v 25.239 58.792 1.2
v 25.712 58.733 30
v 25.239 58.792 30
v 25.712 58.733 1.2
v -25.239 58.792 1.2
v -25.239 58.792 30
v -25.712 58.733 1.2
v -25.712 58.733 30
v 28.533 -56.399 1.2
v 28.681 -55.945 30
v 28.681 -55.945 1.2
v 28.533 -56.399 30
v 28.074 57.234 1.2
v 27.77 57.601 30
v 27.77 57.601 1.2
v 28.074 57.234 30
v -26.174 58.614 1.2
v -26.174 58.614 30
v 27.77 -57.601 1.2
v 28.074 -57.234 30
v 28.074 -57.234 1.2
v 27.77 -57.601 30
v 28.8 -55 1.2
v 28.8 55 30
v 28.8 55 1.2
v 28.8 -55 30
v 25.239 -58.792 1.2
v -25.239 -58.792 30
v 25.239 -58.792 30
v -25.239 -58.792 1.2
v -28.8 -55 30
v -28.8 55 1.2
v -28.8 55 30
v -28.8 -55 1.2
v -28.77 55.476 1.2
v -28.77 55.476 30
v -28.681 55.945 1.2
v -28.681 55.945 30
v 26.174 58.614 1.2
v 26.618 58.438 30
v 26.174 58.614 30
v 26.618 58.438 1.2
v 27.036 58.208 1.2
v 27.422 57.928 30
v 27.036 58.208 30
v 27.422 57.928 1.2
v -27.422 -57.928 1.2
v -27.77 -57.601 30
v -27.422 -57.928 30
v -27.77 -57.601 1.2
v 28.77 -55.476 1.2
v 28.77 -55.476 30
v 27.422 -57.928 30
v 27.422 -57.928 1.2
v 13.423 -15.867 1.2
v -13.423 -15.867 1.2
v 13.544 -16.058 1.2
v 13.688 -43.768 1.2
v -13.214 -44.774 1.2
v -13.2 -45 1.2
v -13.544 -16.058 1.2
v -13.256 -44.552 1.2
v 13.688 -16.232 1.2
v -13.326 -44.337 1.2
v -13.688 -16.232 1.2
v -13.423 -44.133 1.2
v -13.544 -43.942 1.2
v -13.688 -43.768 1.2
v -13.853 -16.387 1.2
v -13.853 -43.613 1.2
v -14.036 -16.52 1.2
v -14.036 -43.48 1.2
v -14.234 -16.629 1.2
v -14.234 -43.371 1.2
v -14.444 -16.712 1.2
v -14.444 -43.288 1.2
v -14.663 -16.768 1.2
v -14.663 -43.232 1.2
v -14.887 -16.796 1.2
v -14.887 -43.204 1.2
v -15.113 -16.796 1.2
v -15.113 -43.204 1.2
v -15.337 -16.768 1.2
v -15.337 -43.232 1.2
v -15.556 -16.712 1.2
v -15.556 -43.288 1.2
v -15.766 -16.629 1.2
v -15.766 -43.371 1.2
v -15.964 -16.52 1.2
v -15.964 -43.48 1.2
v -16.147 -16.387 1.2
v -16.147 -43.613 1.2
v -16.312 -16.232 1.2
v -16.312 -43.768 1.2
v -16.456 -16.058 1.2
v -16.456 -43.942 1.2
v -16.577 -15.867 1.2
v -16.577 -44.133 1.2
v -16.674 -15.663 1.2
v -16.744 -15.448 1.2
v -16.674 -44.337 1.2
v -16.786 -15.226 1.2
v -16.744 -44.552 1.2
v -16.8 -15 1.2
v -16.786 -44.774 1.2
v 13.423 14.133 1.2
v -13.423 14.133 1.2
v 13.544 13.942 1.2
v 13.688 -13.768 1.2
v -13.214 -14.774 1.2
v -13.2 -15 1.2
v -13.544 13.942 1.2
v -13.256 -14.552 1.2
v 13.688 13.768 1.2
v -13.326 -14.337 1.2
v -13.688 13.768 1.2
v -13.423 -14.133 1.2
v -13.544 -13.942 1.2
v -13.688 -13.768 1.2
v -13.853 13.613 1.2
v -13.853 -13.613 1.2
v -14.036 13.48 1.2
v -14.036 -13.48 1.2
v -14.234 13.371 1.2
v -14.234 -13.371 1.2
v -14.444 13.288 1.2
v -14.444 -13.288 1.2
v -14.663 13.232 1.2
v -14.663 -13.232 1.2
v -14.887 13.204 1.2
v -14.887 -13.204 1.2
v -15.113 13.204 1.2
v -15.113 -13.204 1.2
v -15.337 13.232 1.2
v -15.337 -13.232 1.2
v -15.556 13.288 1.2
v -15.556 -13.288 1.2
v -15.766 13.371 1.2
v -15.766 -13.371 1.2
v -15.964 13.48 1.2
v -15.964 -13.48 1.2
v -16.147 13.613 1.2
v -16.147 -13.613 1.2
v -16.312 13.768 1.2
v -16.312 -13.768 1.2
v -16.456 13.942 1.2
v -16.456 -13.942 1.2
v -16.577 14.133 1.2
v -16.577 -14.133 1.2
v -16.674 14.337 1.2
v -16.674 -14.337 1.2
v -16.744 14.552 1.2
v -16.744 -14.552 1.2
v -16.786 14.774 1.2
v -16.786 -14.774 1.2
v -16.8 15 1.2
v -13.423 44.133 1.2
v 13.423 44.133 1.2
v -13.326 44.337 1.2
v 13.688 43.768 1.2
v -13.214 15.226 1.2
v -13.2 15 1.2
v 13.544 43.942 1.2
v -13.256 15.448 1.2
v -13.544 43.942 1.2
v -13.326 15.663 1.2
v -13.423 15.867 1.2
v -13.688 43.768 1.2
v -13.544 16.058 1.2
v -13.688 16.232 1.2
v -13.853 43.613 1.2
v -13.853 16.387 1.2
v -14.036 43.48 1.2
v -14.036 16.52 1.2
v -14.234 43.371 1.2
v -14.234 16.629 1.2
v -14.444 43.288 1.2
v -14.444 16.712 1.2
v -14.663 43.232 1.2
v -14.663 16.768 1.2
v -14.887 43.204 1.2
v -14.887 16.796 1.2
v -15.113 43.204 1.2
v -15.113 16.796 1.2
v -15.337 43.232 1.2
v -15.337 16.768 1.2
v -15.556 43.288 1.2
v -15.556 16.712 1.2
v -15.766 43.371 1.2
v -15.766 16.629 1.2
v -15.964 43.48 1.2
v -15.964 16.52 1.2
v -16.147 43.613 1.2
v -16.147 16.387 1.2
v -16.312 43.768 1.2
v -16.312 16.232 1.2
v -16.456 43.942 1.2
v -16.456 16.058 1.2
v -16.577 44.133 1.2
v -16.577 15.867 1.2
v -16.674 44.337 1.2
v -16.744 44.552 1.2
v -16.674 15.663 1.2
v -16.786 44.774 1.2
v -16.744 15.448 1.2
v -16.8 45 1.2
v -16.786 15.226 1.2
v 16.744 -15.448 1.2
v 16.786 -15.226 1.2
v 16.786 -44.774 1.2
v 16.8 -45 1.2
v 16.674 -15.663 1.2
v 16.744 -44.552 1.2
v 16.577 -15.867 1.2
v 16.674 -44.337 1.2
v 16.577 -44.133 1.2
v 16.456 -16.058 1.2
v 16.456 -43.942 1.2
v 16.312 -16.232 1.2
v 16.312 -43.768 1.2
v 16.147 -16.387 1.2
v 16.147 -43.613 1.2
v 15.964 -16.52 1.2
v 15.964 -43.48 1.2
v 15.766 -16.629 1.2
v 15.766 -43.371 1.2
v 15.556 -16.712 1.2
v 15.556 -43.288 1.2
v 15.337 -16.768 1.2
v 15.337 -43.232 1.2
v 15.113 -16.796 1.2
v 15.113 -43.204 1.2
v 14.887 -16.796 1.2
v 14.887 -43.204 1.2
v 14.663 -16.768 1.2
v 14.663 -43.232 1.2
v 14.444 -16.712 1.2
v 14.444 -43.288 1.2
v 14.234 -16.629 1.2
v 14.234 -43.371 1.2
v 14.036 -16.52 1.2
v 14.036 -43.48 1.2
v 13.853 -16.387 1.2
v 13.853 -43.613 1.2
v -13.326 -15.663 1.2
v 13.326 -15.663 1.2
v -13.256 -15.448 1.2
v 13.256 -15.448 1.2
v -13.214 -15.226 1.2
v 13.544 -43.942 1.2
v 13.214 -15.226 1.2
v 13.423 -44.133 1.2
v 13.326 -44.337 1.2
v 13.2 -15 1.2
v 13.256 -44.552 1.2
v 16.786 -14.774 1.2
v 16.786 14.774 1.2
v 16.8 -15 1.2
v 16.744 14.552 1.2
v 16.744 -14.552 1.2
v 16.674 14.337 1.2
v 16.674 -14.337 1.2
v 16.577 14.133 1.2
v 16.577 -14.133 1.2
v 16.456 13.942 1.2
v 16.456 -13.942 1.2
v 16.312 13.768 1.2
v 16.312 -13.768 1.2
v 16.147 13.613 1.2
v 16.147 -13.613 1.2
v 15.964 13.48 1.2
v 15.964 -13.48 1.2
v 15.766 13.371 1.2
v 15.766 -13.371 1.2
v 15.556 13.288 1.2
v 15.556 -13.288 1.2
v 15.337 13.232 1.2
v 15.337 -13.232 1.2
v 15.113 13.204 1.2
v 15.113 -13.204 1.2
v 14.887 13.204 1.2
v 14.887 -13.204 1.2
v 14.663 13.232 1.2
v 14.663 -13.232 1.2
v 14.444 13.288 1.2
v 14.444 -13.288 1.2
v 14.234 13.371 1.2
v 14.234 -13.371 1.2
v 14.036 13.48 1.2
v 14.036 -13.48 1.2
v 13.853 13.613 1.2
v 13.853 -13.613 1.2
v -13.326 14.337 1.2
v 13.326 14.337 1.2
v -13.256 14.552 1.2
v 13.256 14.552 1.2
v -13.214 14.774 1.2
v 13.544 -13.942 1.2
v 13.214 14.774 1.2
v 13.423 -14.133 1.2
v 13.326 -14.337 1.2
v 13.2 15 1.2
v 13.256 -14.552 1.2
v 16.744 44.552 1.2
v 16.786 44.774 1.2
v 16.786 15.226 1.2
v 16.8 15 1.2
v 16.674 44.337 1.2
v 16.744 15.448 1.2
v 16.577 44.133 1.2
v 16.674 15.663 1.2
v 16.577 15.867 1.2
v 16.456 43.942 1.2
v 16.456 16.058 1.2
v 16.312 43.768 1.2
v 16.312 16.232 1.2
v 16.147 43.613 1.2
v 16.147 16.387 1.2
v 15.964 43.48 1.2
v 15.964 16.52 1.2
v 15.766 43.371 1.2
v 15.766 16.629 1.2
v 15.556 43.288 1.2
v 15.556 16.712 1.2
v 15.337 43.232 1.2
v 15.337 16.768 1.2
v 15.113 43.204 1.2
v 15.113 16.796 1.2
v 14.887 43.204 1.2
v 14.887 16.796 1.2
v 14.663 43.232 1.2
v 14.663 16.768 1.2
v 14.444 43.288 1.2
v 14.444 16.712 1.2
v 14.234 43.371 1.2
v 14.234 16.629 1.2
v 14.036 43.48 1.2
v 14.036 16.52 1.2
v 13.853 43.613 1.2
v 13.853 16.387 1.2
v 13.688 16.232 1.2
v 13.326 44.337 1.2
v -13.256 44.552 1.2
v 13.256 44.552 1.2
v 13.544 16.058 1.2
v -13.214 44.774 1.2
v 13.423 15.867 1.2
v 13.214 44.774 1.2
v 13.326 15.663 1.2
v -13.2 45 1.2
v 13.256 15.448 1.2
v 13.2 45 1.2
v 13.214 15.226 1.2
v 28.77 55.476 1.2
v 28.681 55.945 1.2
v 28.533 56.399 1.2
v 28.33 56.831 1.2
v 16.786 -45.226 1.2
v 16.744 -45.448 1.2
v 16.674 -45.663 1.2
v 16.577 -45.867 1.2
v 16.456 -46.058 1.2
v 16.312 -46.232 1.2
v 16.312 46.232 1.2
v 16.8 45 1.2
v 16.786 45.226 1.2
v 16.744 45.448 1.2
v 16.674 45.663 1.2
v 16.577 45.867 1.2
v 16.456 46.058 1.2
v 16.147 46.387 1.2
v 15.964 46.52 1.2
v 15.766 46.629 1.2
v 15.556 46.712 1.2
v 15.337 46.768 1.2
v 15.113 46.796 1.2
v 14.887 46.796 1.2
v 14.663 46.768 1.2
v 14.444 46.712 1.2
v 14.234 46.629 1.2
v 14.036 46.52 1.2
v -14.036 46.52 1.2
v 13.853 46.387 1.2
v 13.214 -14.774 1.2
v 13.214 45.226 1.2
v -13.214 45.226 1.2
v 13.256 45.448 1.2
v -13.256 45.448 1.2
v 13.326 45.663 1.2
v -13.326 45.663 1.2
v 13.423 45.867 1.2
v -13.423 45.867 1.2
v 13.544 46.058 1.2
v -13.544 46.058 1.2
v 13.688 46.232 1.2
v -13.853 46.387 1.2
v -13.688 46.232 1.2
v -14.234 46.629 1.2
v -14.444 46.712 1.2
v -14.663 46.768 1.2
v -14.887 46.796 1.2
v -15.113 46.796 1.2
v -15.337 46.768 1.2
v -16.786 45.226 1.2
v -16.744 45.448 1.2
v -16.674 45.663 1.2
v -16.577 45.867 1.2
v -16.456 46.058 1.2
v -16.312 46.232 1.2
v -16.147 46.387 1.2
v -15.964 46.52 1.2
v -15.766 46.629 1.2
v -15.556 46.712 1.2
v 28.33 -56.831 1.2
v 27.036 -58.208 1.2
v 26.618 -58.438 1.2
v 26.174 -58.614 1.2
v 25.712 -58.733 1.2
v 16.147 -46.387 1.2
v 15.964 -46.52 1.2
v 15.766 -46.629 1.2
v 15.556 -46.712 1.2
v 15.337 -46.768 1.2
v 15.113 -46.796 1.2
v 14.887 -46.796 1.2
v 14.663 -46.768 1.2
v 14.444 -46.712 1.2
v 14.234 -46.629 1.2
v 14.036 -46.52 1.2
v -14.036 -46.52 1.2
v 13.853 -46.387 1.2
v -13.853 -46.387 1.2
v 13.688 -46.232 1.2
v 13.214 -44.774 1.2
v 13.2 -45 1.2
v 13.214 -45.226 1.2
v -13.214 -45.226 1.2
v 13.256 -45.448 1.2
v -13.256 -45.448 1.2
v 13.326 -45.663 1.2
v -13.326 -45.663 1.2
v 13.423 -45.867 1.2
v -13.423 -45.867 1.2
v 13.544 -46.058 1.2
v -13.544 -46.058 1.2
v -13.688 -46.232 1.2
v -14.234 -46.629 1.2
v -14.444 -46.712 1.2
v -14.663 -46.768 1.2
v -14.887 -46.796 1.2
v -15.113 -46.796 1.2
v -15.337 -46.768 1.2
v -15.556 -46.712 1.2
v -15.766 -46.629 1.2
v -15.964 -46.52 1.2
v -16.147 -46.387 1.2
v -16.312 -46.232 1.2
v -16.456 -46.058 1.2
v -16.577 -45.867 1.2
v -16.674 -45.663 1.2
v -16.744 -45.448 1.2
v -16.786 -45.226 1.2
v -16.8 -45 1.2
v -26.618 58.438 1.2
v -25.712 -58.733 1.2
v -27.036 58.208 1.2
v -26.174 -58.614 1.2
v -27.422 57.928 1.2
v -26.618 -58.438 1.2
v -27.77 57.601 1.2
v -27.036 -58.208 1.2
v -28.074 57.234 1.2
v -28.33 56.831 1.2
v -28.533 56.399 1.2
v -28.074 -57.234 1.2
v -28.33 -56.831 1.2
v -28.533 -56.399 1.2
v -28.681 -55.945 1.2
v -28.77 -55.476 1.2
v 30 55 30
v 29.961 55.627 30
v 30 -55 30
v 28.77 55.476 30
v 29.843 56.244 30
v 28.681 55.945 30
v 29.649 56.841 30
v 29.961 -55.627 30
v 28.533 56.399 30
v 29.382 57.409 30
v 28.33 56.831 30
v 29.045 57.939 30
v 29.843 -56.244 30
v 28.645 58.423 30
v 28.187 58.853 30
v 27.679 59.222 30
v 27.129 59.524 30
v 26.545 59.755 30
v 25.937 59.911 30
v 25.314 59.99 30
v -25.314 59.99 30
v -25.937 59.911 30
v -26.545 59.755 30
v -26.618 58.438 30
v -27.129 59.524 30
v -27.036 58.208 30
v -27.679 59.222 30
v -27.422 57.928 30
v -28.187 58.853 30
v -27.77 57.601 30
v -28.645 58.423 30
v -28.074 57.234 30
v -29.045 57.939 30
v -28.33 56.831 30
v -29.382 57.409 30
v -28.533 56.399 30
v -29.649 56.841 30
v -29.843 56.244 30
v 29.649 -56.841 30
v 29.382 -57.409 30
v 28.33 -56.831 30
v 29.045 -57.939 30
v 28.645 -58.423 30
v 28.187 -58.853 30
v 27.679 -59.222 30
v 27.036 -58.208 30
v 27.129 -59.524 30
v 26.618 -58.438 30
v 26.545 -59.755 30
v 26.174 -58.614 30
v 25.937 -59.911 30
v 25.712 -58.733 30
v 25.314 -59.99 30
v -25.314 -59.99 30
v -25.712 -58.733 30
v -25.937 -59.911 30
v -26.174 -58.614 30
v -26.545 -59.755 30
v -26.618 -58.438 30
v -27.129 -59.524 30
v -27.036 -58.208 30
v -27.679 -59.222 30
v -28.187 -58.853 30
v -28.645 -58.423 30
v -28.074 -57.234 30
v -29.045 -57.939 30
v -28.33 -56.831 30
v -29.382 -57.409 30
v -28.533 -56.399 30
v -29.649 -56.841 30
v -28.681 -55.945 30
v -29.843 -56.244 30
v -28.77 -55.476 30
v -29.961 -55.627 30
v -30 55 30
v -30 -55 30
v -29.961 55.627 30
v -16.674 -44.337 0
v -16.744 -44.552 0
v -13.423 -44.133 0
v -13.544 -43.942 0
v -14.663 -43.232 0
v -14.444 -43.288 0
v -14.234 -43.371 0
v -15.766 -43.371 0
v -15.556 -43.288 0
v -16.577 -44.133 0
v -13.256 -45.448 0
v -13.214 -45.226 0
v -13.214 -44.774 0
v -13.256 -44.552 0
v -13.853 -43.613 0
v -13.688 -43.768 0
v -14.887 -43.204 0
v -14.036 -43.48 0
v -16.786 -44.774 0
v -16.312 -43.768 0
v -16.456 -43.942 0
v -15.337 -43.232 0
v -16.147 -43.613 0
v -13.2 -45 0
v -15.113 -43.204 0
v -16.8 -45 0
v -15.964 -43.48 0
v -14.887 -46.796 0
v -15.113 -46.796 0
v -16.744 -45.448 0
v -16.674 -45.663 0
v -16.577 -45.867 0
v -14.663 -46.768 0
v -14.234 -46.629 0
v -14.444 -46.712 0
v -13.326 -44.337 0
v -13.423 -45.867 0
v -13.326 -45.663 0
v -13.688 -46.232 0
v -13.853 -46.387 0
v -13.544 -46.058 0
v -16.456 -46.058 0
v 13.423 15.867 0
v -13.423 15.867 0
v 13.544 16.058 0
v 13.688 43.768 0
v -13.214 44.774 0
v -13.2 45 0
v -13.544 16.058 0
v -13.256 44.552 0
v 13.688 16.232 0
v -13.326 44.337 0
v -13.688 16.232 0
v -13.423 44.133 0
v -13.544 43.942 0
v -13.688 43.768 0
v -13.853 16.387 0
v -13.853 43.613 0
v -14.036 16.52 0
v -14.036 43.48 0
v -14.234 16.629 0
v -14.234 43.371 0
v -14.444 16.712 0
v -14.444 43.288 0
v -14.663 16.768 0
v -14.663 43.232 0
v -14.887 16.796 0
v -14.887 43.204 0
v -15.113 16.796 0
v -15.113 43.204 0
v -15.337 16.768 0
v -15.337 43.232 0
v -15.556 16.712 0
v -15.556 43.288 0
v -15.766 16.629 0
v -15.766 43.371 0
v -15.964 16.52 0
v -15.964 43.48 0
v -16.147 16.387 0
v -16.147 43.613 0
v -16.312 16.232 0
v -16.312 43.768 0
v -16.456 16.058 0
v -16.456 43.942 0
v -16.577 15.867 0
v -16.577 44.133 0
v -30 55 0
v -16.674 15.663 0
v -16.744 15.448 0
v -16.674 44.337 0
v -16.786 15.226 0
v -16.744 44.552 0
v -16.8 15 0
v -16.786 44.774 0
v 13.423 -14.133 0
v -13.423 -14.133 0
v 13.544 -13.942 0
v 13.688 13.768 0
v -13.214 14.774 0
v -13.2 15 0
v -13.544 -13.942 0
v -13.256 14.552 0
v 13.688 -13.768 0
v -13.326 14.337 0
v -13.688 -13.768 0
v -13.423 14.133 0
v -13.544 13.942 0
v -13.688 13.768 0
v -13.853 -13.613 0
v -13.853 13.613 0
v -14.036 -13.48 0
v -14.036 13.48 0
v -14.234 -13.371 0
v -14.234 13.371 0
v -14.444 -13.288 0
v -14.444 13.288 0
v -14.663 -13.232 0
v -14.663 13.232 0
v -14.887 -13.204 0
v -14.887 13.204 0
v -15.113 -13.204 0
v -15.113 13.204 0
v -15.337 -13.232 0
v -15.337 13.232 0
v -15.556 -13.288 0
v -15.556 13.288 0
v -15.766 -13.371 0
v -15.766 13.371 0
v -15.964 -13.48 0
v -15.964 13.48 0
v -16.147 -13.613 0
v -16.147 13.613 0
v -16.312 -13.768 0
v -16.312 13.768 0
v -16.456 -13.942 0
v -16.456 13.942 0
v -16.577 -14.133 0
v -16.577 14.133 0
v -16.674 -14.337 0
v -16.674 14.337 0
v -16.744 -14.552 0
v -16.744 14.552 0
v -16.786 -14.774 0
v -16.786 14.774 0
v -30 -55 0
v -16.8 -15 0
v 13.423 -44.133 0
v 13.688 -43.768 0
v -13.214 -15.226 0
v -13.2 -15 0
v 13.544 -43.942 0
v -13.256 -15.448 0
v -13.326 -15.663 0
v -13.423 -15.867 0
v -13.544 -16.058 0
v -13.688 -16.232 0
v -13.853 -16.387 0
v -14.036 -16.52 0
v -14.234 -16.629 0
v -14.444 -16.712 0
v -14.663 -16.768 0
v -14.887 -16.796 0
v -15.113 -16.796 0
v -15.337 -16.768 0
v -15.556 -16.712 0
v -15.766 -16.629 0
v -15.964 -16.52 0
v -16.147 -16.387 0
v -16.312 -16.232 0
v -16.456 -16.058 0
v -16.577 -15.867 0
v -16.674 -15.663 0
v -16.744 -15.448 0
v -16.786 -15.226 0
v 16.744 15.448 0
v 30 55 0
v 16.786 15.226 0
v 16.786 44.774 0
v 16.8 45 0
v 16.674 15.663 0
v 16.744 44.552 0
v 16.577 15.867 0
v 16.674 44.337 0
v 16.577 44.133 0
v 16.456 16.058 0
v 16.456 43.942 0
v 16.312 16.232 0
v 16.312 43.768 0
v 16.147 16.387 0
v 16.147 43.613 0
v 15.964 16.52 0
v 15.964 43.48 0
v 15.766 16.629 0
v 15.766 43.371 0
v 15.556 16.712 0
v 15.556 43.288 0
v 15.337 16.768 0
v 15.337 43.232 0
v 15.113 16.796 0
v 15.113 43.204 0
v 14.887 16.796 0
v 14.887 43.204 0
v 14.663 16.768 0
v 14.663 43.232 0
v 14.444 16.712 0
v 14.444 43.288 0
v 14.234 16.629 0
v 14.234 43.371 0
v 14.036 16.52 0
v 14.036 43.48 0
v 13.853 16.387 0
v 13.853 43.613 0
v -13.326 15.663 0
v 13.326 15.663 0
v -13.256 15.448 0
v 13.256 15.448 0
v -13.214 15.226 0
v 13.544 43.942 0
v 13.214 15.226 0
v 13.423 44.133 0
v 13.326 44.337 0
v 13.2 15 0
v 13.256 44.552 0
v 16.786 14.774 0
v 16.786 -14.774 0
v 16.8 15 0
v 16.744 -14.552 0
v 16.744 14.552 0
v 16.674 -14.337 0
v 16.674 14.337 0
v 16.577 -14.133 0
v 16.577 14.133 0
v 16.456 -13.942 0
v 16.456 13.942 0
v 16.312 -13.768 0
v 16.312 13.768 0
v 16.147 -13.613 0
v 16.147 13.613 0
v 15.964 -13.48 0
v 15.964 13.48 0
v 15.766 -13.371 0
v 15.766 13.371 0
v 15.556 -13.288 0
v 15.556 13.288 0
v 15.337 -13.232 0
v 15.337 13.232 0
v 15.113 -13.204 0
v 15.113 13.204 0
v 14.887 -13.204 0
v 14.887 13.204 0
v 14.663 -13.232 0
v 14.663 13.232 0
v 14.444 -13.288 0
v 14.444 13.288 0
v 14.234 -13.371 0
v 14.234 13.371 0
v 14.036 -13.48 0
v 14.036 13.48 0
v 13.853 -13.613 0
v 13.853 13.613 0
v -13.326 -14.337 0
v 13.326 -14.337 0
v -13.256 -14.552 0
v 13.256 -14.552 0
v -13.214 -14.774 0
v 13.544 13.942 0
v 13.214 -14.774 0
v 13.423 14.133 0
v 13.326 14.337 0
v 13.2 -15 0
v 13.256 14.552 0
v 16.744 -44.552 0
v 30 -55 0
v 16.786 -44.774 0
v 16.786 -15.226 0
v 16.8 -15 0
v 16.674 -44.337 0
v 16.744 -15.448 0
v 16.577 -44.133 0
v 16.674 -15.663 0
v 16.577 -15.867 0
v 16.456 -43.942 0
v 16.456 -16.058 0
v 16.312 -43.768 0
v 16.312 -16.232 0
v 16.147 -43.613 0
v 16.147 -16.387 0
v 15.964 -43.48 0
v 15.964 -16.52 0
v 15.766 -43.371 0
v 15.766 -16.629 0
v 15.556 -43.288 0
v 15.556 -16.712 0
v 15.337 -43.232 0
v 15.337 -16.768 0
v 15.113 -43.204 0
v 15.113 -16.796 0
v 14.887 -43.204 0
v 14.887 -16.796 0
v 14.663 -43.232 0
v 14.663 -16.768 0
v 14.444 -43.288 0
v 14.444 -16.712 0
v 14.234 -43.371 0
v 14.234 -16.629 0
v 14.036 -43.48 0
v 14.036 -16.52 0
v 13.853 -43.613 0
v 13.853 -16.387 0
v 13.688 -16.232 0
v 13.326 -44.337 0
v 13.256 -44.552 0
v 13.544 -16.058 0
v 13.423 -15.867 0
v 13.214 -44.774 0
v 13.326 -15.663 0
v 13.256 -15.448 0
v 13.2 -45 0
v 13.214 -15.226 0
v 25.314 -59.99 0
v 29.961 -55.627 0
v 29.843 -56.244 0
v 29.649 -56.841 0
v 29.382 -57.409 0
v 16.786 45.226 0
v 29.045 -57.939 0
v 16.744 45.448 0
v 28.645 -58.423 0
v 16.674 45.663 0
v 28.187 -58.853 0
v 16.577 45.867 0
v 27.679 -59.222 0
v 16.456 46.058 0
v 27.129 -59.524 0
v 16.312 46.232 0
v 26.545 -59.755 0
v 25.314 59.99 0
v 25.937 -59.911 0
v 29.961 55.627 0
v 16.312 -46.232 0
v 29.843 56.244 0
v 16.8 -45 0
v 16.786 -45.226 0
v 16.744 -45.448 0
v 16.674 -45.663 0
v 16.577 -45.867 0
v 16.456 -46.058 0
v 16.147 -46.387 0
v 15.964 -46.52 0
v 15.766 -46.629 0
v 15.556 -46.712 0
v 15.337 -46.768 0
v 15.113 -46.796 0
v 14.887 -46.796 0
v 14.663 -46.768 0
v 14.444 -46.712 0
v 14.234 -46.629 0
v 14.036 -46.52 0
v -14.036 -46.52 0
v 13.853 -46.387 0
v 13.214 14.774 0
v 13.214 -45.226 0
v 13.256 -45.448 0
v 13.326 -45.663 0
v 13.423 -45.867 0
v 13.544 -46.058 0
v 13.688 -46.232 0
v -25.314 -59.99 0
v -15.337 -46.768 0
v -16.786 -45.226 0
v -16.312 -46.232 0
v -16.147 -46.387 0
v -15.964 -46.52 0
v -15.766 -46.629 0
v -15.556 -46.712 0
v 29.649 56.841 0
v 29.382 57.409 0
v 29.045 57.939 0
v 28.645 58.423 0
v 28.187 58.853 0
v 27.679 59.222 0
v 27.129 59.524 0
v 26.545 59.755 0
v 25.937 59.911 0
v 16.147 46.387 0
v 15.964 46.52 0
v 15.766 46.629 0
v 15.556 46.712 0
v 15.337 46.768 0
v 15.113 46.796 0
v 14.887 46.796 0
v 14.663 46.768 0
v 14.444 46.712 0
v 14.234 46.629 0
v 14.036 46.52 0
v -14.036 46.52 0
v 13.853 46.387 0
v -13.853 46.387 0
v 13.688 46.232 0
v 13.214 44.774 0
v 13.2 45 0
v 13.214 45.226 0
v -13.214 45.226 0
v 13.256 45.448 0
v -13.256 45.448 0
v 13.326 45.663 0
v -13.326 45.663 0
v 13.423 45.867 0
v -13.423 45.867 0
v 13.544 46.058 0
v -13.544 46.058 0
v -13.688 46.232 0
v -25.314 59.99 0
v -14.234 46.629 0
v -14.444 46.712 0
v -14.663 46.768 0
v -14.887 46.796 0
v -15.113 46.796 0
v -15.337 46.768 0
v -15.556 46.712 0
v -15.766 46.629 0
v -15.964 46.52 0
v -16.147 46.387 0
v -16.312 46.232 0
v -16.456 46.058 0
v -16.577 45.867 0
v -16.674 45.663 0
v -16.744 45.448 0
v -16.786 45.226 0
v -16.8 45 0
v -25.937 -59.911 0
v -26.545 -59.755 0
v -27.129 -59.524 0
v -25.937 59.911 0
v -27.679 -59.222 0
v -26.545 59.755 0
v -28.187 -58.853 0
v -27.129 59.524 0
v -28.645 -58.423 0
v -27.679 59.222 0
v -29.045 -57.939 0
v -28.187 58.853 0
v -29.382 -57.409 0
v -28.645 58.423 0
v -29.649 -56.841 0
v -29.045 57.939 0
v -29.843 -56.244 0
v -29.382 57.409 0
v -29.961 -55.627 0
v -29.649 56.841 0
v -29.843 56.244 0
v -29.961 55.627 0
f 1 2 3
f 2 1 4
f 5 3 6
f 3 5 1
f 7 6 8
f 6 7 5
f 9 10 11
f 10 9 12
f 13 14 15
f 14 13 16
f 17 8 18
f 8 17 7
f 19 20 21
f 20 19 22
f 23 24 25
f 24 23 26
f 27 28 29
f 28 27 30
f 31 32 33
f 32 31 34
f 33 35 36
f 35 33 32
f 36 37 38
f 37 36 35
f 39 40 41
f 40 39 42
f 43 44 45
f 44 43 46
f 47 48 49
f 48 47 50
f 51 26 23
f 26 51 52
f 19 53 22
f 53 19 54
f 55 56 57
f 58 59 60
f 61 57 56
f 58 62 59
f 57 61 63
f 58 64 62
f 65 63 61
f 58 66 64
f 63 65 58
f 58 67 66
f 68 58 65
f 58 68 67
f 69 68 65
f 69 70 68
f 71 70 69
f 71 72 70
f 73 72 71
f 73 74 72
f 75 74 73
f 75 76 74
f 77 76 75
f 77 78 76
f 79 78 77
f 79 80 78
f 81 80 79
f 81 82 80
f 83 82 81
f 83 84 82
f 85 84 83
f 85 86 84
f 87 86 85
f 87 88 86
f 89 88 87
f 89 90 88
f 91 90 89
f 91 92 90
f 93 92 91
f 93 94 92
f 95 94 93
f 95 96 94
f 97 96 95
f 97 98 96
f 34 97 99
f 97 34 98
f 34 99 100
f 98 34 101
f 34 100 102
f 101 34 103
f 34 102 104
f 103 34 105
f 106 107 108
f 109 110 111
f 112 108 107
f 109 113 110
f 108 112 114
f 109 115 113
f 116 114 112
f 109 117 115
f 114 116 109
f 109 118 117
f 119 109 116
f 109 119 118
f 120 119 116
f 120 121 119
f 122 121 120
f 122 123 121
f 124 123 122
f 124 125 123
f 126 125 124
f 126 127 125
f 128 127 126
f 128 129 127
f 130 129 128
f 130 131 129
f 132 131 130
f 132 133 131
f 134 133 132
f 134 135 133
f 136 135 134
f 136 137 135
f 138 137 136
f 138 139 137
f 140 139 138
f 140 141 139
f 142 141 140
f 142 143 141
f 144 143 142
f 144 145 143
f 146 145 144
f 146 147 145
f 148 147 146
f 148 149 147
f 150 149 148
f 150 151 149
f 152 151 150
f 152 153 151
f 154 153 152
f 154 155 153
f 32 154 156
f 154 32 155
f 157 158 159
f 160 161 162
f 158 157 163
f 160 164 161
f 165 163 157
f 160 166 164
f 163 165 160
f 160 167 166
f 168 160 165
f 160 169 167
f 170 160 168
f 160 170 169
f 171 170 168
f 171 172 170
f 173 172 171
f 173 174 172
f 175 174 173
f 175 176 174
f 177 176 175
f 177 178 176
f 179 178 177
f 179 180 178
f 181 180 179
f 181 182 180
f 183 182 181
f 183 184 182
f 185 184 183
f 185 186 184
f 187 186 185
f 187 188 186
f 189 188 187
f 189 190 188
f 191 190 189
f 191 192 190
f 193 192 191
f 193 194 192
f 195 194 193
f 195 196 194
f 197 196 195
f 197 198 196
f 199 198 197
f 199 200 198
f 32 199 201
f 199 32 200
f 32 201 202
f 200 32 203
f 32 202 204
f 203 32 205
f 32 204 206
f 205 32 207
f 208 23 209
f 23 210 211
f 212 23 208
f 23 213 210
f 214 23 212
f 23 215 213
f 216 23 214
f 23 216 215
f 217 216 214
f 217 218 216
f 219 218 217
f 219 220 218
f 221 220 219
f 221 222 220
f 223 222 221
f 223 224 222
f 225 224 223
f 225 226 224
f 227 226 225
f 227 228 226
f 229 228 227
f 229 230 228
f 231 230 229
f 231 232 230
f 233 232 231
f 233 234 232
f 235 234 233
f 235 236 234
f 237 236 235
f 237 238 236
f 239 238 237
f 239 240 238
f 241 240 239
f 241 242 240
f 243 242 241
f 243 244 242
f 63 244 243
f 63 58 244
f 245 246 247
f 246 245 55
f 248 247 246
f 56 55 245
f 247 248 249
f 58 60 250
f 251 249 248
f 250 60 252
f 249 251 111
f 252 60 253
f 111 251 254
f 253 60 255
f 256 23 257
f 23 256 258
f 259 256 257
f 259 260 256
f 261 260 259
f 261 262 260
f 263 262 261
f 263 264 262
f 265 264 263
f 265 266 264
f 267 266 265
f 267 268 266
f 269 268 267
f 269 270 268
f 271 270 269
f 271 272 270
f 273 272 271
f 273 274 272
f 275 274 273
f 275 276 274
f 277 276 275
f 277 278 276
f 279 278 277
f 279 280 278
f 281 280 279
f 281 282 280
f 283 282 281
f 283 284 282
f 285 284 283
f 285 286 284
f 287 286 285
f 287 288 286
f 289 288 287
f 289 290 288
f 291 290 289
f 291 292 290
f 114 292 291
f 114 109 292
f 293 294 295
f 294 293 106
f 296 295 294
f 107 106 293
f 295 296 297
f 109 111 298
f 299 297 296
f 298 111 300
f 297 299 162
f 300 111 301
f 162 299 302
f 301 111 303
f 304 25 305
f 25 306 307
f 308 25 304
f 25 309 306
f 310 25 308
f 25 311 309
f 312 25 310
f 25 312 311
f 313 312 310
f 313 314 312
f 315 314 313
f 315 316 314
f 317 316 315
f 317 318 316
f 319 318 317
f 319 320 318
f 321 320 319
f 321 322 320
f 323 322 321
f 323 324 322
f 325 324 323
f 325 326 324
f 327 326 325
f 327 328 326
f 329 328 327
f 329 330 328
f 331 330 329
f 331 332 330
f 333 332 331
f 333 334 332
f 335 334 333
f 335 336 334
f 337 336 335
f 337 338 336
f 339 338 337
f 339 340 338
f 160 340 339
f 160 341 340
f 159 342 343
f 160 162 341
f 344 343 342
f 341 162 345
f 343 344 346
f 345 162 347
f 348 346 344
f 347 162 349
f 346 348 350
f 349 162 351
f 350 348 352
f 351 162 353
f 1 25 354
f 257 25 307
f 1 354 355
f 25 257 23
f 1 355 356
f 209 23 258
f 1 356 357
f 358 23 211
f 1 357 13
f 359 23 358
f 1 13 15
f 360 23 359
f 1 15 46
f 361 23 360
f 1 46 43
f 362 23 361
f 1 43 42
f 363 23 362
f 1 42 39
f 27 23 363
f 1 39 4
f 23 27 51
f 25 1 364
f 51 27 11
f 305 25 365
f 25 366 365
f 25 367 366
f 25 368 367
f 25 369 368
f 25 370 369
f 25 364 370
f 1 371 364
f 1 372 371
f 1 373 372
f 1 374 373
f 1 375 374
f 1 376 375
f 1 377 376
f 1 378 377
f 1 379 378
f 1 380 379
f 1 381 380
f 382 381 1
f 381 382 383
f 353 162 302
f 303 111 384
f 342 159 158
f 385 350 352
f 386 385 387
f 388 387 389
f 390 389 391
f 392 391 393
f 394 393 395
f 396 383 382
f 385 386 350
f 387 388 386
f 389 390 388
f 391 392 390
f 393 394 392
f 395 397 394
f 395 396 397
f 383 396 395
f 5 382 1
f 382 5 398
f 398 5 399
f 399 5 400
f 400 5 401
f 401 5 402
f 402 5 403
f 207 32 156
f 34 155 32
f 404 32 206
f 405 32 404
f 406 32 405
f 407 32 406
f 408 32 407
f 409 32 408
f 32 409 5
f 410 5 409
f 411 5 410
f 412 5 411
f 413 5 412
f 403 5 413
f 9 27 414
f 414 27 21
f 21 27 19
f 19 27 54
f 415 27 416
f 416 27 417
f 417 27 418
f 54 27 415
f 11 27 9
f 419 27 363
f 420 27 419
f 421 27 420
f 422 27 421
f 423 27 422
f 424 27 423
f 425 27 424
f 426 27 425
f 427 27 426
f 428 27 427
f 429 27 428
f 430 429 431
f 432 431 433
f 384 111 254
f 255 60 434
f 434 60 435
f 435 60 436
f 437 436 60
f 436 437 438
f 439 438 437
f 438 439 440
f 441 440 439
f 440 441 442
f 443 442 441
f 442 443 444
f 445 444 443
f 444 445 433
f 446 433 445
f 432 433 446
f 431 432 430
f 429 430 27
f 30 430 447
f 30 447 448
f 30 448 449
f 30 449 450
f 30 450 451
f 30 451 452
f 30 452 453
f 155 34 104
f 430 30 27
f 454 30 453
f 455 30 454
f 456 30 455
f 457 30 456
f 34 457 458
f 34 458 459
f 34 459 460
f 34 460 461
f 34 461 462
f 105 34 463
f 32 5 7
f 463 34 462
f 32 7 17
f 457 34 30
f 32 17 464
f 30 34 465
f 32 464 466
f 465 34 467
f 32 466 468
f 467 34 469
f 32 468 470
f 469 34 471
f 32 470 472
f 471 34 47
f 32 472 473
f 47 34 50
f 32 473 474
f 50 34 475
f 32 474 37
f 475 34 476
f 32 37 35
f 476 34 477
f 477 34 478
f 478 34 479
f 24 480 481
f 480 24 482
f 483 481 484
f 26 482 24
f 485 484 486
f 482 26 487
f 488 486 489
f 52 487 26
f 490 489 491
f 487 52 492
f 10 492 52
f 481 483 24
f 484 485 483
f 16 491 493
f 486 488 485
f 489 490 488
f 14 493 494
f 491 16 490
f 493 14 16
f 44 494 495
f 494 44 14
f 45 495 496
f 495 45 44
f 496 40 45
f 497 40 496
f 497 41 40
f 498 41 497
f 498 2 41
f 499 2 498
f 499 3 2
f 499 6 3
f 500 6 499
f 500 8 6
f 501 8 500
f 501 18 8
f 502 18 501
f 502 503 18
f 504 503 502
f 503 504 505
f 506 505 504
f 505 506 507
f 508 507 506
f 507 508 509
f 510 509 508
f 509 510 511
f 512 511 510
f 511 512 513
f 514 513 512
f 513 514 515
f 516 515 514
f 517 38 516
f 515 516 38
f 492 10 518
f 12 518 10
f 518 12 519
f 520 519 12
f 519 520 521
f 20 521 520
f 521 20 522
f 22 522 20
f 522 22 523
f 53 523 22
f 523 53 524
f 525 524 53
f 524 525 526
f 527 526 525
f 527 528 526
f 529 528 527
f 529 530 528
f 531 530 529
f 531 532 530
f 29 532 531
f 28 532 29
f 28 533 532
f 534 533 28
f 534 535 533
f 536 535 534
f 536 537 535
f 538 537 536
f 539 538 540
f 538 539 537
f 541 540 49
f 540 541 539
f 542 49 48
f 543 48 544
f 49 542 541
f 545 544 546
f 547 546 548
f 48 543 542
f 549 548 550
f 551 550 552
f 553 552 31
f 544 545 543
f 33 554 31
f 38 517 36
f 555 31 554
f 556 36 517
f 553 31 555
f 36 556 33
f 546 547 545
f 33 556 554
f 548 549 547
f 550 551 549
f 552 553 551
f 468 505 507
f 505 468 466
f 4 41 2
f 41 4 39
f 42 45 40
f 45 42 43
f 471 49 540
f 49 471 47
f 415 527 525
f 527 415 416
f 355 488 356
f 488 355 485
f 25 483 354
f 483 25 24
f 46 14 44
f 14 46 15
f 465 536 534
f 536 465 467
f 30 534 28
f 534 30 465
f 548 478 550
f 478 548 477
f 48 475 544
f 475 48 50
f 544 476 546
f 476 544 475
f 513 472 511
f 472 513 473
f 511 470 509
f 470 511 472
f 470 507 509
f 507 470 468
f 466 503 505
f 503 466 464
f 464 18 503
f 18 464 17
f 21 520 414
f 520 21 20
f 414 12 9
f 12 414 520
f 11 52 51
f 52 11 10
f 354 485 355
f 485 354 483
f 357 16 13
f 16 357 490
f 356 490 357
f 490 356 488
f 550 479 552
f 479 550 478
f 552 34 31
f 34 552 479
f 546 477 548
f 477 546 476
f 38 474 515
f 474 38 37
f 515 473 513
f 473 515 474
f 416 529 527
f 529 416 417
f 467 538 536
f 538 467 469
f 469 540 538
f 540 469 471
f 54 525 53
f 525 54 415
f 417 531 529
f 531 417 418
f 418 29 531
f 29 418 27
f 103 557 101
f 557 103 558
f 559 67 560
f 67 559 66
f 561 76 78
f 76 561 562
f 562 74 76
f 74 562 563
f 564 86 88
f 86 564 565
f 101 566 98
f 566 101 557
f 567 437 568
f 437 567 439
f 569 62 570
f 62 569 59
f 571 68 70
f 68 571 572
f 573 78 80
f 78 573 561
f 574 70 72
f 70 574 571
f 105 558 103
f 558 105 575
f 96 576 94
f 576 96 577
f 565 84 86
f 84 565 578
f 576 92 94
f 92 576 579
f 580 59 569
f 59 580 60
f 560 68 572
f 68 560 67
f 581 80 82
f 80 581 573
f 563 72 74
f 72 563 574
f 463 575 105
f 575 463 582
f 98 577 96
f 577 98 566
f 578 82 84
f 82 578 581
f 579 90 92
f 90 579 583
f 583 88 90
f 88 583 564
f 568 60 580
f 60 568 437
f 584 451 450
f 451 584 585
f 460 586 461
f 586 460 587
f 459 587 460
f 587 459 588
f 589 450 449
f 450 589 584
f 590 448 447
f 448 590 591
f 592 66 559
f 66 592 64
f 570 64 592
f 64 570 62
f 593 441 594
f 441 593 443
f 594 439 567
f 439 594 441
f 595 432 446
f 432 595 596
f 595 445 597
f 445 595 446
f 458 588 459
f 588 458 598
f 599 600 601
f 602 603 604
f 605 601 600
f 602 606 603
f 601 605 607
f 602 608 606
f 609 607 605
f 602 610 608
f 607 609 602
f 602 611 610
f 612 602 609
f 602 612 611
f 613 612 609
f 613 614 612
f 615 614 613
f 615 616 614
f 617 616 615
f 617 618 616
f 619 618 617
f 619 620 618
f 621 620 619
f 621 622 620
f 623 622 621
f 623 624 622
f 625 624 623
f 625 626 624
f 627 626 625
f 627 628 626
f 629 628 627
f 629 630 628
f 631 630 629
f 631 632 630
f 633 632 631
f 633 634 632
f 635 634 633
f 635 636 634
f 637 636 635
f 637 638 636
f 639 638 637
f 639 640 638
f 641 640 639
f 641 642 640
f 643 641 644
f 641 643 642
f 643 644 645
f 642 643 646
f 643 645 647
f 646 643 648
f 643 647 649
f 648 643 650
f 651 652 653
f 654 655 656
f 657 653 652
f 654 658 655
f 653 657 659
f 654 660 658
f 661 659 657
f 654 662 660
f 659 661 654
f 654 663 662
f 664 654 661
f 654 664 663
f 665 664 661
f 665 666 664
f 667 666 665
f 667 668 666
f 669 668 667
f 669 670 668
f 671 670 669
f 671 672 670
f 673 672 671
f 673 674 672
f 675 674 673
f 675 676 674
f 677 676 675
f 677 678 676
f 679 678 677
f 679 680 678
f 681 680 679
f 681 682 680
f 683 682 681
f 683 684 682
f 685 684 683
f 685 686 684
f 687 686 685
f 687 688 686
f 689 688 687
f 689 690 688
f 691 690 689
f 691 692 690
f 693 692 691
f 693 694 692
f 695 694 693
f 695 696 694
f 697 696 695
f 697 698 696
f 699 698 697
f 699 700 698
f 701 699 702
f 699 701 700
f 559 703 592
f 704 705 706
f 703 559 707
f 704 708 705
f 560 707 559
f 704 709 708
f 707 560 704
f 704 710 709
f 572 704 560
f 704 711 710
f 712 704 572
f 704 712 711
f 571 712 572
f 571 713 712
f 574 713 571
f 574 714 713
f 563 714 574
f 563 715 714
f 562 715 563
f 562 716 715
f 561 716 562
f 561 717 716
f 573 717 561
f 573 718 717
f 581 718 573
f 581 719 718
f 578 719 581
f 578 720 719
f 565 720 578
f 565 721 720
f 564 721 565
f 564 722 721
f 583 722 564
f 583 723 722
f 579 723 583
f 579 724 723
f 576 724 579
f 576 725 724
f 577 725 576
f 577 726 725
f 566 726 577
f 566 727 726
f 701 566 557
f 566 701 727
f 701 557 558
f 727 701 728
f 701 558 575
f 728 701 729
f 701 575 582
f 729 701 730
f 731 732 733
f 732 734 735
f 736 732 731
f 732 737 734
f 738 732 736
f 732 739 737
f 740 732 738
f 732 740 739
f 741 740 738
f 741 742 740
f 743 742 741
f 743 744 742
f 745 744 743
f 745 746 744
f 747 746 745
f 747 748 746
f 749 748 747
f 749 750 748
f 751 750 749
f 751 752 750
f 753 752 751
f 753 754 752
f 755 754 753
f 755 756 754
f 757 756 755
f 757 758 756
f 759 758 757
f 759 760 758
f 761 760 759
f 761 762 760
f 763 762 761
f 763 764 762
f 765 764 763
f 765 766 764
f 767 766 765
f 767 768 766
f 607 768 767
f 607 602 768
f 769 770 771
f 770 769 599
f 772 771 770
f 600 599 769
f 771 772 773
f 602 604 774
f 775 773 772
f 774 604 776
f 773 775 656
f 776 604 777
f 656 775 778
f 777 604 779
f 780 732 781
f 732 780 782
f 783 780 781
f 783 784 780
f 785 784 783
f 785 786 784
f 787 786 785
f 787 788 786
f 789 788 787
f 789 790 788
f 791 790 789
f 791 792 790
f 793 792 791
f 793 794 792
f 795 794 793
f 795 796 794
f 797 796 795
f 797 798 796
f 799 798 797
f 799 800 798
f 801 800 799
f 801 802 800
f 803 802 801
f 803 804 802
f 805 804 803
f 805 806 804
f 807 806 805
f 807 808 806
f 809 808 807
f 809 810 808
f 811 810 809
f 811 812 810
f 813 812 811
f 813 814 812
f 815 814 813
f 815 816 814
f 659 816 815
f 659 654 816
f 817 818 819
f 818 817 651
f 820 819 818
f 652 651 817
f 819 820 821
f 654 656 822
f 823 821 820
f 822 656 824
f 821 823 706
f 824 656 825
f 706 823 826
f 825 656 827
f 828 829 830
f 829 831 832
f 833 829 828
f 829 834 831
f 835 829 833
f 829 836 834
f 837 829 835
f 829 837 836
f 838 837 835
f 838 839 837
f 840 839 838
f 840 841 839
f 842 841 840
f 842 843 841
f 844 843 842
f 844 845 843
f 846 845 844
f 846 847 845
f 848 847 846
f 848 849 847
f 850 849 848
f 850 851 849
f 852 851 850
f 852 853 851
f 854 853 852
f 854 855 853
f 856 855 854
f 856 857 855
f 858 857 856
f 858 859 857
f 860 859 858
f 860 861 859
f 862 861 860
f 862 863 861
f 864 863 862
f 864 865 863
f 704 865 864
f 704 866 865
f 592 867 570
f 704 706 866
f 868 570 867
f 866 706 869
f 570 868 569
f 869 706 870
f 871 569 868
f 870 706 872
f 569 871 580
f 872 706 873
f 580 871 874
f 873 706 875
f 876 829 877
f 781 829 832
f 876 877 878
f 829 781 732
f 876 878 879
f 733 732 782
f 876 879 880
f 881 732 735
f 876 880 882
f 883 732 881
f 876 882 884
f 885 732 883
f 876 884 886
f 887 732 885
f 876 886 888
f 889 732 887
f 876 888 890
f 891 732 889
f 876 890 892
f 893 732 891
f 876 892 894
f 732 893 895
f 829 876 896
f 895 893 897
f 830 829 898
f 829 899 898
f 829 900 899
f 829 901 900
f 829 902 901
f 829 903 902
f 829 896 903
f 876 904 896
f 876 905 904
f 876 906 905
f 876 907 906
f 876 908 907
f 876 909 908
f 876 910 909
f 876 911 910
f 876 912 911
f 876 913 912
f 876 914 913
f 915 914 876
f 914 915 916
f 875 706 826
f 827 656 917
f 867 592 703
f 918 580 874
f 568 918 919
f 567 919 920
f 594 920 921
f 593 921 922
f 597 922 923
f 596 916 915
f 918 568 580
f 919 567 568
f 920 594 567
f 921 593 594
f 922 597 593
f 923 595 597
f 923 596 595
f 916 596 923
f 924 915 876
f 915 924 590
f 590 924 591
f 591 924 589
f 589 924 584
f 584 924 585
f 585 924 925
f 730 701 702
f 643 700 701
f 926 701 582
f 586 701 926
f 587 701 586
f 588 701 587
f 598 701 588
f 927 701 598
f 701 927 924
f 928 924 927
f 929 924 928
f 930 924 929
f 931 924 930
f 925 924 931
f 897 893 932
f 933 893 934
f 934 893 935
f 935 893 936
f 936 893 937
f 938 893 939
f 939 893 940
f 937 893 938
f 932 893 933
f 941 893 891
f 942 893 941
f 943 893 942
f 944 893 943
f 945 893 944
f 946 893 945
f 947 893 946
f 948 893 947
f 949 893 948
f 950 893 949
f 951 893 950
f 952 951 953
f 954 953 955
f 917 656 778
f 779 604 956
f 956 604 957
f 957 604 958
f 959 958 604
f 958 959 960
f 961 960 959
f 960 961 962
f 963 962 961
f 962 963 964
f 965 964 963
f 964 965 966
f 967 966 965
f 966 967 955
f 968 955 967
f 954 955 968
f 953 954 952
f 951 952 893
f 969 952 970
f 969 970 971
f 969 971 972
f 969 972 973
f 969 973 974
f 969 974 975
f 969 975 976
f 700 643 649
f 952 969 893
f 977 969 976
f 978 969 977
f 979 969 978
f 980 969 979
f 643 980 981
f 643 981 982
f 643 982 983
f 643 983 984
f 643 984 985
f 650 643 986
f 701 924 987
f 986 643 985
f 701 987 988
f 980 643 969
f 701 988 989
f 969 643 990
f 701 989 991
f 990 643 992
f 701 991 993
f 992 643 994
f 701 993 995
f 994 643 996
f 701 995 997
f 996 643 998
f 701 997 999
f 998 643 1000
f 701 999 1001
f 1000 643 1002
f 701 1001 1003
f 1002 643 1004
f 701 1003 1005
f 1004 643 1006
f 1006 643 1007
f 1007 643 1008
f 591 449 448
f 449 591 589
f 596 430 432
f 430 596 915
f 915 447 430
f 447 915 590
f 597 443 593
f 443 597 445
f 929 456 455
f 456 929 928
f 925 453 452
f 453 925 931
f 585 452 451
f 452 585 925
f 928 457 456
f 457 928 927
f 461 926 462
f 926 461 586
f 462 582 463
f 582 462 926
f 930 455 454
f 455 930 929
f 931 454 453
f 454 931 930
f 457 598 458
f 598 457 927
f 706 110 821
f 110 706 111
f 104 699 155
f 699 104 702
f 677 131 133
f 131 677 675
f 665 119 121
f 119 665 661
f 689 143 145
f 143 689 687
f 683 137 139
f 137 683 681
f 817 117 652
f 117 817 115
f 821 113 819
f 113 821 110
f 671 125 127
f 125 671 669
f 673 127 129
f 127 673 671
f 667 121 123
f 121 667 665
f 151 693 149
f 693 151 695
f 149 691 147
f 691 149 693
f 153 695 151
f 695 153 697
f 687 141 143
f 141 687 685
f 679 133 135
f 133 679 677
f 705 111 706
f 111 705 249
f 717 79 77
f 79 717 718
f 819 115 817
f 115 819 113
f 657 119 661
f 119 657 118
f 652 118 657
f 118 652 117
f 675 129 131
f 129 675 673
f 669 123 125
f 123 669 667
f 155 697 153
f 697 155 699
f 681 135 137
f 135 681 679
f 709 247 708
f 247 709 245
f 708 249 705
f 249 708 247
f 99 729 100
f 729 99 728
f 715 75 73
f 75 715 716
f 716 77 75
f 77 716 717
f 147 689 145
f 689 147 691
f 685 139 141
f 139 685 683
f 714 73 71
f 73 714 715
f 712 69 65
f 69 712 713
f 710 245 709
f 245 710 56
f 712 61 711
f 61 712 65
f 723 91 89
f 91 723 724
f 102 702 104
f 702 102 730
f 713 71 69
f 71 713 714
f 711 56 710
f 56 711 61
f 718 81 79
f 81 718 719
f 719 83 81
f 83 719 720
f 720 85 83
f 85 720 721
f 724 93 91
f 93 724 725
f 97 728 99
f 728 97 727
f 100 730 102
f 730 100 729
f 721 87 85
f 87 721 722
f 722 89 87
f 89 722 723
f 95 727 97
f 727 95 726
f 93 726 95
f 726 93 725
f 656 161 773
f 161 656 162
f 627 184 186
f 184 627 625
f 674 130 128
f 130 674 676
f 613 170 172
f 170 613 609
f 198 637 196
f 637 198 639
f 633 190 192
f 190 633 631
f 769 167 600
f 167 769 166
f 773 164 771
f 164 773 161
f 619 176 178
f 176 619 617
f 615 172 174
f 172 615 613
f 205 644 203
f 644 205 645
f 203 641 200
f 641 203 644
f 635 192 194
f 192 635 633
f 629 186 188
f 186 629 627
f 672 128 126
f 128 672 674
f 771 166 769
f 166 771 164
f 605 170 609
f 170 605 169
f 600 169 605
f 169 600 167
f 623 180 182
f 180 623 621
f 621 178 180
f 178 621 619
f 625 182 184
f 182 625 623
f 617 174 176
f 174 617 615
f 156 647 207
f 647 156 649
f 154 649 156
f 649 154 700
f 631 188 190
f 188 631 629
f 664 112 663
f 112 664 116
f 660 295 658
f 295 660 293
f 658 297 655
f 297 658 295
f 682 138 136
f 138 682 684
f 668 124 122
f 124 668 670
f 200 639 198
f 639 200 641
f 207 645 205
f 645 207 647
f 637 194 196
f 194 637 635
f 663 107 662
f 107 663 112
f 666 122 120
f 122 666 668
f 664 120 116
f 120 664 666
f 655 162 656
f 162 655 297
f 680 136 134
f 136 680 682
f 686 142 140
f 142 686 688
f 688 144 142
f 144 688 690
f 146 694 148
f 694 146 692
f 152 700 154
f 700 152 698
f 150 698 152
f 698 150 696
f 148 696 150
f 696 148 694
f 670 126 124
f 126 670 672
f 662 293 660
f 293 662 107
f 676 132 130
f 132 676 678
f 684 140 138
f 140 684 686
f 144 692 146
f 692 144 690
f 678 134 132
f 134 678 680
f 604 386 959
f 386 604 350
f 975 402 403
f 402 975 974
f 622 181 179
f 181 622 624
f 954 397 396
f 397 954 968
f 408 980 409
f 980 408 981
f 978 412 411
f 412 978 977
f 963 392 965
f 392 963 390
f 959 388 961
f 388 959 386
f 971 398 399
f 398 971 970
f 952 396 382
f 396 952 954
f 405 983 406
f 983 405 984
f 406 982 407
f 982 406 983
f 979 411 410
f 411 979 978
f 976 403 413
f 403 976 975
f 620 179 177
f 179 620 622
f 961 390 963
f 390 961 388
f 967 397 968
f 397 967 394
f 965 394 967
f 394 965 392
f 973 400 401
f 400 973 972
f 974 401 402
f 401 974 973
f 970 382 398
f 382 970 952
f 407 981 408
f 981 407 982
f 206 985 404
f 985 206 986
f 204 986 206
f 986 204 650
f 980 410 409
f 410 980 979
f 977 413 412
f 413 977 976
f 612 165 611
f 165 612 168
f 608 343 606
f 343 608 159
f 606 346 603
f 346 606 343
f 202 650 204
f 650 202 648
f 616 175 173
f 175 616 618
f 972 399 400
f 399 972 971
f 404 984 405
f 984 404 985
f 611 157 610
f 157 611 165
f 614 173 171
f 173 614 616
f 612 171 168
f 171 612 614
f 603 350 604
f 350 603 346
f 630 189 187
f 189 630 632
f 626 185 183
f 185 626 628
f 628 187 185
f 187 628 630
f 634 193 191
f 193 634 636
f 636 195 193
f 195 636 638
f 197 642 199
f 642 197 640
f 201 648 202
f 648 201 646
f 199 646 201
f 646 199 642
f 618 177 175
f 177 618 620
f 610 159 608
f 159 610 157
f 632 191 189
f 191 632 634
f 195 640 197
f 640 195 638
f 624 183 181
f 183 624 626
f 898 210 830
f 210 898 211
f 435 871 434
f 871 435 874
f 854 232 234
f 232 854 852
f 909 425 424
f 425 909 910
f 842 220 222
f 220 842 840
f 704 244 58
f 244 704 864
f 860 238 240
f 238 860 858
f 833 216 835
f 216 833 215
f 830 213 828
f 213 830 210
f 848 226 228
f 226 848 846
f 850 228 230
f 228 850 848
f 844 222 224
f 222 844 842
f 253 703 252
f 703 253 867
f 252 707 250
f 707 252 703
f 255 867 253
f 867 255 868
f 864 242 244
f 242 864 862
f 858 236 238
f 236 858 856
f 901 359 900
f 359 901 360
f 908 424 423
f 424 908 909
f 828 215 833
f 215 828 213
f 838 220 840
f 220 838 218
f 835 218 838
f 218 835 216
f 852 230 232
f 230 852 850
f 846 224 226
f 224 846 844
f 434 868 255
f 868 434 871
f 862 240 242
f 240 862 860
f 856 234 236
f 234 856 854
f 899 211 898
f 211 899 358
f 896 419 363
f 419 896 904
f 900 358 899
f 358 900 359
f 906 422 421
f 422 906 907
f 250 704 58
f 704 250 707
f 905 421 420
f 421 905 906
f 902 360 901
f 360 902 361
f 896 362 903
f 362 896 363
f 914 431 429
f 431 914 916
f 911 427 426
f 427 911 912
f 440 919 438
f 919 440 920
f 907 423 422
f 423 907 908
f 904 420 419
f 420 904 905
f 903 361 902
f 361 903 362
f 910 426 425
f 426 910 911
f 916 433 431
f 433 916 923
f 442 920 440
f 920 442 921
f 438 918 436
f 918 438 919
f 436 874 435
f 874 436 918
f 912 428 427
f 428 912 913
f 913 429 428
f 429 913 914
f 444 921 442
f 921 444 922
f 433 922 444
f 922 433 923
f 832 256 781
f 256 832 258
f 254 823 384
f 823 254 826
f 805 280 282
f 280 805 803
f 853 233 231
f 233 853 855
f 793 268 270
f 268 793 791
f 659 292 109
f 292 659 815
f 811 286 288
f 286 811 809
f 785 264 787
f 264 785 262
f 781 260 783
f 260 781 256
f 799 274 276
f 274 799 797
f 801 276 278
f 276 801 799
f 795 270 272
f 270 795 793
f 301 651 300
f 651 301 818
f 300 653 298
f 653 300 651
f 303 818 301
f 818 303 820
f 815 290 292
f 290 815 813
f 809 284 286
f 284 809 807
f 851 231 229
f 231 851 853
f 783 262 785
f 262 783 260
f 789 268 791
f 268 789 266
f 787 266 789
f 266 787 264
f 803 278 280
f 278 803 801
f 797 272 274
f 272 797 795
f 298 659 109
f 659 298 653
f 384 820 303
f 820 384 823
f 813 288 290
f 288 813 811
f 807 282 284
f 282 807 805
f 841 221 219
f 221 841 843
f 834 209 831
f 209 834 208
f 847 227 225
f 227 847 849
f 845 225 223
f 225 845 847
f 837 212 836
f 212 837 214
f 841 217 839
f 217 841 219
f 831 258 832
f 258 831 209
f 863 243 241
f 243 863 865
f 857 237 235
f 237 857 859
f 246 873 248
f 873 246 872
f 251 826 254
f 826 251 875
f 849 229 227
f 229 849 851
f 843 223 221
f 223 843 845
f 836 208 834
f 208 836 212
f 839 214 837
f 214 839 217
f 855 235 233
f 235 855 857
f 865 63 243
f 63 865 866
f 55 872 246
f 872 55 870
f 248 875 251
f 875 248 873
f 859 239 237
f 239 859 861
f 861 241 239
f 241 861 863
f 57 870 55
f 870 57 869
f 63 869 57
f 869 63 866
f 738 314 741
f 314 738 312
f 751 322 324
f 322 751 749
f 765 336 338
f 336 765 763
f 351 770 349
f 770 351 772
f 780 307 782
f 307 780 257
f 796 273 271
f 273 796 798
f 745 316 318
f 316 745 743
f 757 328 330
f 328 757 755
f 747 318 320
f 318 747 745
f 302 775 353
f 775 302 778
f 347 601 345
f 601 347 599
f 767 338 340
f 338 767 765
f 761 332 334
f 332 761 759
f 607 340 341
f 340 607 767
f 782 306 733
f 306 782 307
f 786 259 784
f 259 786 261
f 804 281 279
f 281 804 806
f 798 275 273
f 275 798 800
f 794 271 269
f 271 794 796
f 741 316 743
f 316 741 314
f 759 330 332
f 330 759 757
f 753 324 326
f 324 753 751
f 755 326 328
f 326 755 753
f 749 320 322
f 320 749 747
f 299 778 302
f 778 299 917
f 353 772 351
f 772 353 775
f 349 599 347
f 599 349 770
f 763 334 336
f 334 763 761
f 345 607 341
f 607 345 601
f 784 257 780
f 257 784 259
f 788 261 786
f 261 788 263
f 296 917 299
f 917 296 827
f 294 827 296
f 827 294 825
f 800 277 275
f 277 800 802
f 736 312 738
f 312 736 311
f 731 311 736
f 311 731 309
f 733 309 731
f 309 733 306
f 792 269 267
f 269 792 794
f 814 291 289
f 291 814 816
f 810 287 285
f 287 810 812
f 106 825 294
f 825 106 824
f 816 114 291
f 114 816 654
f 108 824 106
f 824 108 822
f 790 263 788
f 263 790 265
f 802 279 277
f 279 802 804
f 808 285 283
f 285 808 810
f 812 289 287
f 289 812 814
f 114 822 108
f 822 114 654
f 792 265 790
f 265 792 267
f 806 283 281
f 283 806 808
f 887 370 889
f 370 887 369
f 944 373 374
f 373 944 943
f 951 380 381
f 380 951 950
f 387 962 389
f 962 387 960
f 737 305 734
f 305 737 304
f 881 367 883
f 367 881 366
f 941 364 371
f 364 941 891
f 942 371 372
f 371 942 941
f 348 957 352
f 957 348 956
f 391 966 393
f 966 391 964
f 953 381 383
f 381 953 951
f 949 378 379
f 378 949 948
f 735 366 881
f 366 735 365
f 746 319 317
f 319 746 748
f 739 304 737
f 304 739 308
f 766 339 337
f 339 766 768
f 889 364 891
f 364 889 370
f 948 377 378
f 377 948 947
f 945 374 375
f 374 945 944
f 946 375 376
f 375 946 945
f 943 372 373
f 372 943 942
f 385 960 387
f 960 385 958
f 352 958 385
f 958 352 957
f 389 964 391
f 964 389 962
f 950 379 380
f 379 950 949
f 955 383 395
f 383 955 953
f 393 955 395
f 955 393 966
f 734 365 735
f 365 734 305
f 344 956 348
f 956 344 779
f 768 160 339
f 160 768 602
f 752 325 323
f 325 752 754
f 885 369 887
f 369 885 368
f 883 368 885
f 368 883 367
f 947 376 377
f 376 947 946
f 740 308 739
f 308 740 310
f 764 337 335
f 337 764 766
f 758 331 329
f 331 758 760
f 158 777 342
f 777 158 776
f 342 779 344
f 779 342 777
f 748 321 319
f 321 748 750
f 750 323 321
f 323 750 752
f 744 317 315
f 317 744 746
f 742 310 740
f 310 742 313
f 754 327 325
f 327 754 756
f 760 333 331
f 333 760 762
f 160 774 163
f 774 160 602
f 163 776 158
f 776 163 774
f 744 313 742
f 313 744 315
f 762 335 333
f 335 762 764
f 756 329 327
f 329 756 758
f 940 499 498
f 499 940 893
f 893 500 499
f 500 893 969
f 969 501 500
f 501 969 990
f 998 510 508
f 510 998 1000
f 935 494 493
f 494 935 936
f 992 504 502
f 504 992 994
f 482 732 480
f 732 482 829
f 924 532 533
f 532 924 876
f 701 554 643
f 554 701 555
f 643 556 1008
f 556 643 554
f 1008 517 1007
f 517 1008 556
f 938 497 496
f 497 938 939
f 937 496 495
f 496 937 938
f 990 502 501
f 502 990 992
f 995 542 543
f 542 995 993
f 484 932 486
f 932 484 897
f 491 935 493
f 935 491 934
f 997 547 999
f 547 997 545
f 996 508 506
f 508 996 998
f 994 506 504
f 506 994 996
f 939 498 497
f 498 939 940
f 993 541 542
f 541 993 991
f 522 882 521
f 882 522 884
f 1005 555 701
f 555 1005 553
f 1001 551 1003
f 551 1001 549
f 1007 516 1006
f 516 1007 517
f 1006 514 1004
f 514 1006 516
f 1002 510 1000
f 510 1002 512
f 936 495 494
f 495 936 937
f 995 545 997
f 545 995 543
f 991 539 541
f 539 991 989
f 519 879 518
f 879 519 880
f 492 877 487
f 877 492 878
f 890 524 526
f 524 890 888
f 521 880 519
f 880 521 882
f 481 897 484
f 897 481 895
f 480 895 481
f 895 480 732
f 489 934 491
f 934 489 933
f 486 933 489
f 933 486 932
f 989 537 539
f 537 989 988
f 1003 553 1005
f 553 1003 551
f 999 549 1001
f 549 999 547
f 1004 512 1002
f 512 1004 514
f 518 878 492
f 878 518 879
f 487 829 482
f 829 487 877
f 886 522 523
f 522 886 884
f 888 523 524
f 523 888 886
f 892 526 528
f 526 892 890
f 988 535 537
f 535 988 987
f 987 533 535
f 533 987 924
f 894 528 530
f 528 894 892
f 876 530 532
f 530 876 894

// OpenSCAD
$fn = 50;


difference() {
	union() {
		hull() {
			translate(v = [-25.0000000000, 55.0000000000, 0]) {
				cylinder(h = 30, r = 5);
			}
			translate(v = [25.0000000000, 55.0000000000, 0]) {
				cylinder(h = 30, r = 5);
			}
			translate(v = [-25.0000000000, -55.0000000000, 0]) {
				cylinder(h = 30, r = 5);
			}
			translate(v = [25.0000000000, -55.0000000000, 0]) {
				cylinder(h = 30, r = 5);
			}
		}
	}
	union() {
		translate(v = [0, 0, 1.2000000000]) {
			hull() {
				translate(v = [-25.0000000000, 55.0000000000, 0]) {
					cylinder(h = 28.8000000000, r = 3.8000000000);
				}
				translate(v = [25.0000000000, 55.0000000000, 0]) {
					cylinder(h = 28.8000000000, r = 3.8000000000);
				}
				translate(v = [-25.0000000000, -55.0000000000, 0]) {
					cylinder(h = 28.8000000000, r = 3.8000000000);
				}
				translate(v = [25.0000000000, -55.0000000000, 0]) {
					cylinder(h = 28.8000000000, r = 3.8000000000);
				}
			}
		}
		#translate(v = [-15.0000000000, -45.0000000000, 0]) {
			cylinder(h = 1.2000000000, r = 1.8000000000);
		}
		#translate(v = [-15.0000000000, -15.0000000000, 0]) {
			cylinder(h = 1.2000000000, r = 1.8000000000);
		}
		#translate(v = [-15.0000000000, 15.0000000000, 0]) {
			cylinder(h = 1.2000000000, r = 1.8000000000);
		}
		#translate(v = [-15.0000000000, 45.0000000000, 0]) {
			cylinder(h = 1.2000000000, r = 1.8000000000);
		}
		#translate(v = [15.0000000000, -45.0000000000, 0]) {
			cylinder(h = 1.2000000000, r = 1.8000000000);
		}
		#translate(v = [15.0000000000, -15.0000000000, 0]) {
			cylinder(h = 1.2000000000, r = 1.8000000000);
		}
		#translate(v = [15.0000000000, 15.0000000000, 0]) {
			cylinder(h = 1.2000000000, r = 1.8000000000);
		}
		#translate(v = [15.0000000000, 45.0000000000, 0]) {
			cylinder(h = 1.2000000000, r = 1.8000000000);
		}
	}
}
